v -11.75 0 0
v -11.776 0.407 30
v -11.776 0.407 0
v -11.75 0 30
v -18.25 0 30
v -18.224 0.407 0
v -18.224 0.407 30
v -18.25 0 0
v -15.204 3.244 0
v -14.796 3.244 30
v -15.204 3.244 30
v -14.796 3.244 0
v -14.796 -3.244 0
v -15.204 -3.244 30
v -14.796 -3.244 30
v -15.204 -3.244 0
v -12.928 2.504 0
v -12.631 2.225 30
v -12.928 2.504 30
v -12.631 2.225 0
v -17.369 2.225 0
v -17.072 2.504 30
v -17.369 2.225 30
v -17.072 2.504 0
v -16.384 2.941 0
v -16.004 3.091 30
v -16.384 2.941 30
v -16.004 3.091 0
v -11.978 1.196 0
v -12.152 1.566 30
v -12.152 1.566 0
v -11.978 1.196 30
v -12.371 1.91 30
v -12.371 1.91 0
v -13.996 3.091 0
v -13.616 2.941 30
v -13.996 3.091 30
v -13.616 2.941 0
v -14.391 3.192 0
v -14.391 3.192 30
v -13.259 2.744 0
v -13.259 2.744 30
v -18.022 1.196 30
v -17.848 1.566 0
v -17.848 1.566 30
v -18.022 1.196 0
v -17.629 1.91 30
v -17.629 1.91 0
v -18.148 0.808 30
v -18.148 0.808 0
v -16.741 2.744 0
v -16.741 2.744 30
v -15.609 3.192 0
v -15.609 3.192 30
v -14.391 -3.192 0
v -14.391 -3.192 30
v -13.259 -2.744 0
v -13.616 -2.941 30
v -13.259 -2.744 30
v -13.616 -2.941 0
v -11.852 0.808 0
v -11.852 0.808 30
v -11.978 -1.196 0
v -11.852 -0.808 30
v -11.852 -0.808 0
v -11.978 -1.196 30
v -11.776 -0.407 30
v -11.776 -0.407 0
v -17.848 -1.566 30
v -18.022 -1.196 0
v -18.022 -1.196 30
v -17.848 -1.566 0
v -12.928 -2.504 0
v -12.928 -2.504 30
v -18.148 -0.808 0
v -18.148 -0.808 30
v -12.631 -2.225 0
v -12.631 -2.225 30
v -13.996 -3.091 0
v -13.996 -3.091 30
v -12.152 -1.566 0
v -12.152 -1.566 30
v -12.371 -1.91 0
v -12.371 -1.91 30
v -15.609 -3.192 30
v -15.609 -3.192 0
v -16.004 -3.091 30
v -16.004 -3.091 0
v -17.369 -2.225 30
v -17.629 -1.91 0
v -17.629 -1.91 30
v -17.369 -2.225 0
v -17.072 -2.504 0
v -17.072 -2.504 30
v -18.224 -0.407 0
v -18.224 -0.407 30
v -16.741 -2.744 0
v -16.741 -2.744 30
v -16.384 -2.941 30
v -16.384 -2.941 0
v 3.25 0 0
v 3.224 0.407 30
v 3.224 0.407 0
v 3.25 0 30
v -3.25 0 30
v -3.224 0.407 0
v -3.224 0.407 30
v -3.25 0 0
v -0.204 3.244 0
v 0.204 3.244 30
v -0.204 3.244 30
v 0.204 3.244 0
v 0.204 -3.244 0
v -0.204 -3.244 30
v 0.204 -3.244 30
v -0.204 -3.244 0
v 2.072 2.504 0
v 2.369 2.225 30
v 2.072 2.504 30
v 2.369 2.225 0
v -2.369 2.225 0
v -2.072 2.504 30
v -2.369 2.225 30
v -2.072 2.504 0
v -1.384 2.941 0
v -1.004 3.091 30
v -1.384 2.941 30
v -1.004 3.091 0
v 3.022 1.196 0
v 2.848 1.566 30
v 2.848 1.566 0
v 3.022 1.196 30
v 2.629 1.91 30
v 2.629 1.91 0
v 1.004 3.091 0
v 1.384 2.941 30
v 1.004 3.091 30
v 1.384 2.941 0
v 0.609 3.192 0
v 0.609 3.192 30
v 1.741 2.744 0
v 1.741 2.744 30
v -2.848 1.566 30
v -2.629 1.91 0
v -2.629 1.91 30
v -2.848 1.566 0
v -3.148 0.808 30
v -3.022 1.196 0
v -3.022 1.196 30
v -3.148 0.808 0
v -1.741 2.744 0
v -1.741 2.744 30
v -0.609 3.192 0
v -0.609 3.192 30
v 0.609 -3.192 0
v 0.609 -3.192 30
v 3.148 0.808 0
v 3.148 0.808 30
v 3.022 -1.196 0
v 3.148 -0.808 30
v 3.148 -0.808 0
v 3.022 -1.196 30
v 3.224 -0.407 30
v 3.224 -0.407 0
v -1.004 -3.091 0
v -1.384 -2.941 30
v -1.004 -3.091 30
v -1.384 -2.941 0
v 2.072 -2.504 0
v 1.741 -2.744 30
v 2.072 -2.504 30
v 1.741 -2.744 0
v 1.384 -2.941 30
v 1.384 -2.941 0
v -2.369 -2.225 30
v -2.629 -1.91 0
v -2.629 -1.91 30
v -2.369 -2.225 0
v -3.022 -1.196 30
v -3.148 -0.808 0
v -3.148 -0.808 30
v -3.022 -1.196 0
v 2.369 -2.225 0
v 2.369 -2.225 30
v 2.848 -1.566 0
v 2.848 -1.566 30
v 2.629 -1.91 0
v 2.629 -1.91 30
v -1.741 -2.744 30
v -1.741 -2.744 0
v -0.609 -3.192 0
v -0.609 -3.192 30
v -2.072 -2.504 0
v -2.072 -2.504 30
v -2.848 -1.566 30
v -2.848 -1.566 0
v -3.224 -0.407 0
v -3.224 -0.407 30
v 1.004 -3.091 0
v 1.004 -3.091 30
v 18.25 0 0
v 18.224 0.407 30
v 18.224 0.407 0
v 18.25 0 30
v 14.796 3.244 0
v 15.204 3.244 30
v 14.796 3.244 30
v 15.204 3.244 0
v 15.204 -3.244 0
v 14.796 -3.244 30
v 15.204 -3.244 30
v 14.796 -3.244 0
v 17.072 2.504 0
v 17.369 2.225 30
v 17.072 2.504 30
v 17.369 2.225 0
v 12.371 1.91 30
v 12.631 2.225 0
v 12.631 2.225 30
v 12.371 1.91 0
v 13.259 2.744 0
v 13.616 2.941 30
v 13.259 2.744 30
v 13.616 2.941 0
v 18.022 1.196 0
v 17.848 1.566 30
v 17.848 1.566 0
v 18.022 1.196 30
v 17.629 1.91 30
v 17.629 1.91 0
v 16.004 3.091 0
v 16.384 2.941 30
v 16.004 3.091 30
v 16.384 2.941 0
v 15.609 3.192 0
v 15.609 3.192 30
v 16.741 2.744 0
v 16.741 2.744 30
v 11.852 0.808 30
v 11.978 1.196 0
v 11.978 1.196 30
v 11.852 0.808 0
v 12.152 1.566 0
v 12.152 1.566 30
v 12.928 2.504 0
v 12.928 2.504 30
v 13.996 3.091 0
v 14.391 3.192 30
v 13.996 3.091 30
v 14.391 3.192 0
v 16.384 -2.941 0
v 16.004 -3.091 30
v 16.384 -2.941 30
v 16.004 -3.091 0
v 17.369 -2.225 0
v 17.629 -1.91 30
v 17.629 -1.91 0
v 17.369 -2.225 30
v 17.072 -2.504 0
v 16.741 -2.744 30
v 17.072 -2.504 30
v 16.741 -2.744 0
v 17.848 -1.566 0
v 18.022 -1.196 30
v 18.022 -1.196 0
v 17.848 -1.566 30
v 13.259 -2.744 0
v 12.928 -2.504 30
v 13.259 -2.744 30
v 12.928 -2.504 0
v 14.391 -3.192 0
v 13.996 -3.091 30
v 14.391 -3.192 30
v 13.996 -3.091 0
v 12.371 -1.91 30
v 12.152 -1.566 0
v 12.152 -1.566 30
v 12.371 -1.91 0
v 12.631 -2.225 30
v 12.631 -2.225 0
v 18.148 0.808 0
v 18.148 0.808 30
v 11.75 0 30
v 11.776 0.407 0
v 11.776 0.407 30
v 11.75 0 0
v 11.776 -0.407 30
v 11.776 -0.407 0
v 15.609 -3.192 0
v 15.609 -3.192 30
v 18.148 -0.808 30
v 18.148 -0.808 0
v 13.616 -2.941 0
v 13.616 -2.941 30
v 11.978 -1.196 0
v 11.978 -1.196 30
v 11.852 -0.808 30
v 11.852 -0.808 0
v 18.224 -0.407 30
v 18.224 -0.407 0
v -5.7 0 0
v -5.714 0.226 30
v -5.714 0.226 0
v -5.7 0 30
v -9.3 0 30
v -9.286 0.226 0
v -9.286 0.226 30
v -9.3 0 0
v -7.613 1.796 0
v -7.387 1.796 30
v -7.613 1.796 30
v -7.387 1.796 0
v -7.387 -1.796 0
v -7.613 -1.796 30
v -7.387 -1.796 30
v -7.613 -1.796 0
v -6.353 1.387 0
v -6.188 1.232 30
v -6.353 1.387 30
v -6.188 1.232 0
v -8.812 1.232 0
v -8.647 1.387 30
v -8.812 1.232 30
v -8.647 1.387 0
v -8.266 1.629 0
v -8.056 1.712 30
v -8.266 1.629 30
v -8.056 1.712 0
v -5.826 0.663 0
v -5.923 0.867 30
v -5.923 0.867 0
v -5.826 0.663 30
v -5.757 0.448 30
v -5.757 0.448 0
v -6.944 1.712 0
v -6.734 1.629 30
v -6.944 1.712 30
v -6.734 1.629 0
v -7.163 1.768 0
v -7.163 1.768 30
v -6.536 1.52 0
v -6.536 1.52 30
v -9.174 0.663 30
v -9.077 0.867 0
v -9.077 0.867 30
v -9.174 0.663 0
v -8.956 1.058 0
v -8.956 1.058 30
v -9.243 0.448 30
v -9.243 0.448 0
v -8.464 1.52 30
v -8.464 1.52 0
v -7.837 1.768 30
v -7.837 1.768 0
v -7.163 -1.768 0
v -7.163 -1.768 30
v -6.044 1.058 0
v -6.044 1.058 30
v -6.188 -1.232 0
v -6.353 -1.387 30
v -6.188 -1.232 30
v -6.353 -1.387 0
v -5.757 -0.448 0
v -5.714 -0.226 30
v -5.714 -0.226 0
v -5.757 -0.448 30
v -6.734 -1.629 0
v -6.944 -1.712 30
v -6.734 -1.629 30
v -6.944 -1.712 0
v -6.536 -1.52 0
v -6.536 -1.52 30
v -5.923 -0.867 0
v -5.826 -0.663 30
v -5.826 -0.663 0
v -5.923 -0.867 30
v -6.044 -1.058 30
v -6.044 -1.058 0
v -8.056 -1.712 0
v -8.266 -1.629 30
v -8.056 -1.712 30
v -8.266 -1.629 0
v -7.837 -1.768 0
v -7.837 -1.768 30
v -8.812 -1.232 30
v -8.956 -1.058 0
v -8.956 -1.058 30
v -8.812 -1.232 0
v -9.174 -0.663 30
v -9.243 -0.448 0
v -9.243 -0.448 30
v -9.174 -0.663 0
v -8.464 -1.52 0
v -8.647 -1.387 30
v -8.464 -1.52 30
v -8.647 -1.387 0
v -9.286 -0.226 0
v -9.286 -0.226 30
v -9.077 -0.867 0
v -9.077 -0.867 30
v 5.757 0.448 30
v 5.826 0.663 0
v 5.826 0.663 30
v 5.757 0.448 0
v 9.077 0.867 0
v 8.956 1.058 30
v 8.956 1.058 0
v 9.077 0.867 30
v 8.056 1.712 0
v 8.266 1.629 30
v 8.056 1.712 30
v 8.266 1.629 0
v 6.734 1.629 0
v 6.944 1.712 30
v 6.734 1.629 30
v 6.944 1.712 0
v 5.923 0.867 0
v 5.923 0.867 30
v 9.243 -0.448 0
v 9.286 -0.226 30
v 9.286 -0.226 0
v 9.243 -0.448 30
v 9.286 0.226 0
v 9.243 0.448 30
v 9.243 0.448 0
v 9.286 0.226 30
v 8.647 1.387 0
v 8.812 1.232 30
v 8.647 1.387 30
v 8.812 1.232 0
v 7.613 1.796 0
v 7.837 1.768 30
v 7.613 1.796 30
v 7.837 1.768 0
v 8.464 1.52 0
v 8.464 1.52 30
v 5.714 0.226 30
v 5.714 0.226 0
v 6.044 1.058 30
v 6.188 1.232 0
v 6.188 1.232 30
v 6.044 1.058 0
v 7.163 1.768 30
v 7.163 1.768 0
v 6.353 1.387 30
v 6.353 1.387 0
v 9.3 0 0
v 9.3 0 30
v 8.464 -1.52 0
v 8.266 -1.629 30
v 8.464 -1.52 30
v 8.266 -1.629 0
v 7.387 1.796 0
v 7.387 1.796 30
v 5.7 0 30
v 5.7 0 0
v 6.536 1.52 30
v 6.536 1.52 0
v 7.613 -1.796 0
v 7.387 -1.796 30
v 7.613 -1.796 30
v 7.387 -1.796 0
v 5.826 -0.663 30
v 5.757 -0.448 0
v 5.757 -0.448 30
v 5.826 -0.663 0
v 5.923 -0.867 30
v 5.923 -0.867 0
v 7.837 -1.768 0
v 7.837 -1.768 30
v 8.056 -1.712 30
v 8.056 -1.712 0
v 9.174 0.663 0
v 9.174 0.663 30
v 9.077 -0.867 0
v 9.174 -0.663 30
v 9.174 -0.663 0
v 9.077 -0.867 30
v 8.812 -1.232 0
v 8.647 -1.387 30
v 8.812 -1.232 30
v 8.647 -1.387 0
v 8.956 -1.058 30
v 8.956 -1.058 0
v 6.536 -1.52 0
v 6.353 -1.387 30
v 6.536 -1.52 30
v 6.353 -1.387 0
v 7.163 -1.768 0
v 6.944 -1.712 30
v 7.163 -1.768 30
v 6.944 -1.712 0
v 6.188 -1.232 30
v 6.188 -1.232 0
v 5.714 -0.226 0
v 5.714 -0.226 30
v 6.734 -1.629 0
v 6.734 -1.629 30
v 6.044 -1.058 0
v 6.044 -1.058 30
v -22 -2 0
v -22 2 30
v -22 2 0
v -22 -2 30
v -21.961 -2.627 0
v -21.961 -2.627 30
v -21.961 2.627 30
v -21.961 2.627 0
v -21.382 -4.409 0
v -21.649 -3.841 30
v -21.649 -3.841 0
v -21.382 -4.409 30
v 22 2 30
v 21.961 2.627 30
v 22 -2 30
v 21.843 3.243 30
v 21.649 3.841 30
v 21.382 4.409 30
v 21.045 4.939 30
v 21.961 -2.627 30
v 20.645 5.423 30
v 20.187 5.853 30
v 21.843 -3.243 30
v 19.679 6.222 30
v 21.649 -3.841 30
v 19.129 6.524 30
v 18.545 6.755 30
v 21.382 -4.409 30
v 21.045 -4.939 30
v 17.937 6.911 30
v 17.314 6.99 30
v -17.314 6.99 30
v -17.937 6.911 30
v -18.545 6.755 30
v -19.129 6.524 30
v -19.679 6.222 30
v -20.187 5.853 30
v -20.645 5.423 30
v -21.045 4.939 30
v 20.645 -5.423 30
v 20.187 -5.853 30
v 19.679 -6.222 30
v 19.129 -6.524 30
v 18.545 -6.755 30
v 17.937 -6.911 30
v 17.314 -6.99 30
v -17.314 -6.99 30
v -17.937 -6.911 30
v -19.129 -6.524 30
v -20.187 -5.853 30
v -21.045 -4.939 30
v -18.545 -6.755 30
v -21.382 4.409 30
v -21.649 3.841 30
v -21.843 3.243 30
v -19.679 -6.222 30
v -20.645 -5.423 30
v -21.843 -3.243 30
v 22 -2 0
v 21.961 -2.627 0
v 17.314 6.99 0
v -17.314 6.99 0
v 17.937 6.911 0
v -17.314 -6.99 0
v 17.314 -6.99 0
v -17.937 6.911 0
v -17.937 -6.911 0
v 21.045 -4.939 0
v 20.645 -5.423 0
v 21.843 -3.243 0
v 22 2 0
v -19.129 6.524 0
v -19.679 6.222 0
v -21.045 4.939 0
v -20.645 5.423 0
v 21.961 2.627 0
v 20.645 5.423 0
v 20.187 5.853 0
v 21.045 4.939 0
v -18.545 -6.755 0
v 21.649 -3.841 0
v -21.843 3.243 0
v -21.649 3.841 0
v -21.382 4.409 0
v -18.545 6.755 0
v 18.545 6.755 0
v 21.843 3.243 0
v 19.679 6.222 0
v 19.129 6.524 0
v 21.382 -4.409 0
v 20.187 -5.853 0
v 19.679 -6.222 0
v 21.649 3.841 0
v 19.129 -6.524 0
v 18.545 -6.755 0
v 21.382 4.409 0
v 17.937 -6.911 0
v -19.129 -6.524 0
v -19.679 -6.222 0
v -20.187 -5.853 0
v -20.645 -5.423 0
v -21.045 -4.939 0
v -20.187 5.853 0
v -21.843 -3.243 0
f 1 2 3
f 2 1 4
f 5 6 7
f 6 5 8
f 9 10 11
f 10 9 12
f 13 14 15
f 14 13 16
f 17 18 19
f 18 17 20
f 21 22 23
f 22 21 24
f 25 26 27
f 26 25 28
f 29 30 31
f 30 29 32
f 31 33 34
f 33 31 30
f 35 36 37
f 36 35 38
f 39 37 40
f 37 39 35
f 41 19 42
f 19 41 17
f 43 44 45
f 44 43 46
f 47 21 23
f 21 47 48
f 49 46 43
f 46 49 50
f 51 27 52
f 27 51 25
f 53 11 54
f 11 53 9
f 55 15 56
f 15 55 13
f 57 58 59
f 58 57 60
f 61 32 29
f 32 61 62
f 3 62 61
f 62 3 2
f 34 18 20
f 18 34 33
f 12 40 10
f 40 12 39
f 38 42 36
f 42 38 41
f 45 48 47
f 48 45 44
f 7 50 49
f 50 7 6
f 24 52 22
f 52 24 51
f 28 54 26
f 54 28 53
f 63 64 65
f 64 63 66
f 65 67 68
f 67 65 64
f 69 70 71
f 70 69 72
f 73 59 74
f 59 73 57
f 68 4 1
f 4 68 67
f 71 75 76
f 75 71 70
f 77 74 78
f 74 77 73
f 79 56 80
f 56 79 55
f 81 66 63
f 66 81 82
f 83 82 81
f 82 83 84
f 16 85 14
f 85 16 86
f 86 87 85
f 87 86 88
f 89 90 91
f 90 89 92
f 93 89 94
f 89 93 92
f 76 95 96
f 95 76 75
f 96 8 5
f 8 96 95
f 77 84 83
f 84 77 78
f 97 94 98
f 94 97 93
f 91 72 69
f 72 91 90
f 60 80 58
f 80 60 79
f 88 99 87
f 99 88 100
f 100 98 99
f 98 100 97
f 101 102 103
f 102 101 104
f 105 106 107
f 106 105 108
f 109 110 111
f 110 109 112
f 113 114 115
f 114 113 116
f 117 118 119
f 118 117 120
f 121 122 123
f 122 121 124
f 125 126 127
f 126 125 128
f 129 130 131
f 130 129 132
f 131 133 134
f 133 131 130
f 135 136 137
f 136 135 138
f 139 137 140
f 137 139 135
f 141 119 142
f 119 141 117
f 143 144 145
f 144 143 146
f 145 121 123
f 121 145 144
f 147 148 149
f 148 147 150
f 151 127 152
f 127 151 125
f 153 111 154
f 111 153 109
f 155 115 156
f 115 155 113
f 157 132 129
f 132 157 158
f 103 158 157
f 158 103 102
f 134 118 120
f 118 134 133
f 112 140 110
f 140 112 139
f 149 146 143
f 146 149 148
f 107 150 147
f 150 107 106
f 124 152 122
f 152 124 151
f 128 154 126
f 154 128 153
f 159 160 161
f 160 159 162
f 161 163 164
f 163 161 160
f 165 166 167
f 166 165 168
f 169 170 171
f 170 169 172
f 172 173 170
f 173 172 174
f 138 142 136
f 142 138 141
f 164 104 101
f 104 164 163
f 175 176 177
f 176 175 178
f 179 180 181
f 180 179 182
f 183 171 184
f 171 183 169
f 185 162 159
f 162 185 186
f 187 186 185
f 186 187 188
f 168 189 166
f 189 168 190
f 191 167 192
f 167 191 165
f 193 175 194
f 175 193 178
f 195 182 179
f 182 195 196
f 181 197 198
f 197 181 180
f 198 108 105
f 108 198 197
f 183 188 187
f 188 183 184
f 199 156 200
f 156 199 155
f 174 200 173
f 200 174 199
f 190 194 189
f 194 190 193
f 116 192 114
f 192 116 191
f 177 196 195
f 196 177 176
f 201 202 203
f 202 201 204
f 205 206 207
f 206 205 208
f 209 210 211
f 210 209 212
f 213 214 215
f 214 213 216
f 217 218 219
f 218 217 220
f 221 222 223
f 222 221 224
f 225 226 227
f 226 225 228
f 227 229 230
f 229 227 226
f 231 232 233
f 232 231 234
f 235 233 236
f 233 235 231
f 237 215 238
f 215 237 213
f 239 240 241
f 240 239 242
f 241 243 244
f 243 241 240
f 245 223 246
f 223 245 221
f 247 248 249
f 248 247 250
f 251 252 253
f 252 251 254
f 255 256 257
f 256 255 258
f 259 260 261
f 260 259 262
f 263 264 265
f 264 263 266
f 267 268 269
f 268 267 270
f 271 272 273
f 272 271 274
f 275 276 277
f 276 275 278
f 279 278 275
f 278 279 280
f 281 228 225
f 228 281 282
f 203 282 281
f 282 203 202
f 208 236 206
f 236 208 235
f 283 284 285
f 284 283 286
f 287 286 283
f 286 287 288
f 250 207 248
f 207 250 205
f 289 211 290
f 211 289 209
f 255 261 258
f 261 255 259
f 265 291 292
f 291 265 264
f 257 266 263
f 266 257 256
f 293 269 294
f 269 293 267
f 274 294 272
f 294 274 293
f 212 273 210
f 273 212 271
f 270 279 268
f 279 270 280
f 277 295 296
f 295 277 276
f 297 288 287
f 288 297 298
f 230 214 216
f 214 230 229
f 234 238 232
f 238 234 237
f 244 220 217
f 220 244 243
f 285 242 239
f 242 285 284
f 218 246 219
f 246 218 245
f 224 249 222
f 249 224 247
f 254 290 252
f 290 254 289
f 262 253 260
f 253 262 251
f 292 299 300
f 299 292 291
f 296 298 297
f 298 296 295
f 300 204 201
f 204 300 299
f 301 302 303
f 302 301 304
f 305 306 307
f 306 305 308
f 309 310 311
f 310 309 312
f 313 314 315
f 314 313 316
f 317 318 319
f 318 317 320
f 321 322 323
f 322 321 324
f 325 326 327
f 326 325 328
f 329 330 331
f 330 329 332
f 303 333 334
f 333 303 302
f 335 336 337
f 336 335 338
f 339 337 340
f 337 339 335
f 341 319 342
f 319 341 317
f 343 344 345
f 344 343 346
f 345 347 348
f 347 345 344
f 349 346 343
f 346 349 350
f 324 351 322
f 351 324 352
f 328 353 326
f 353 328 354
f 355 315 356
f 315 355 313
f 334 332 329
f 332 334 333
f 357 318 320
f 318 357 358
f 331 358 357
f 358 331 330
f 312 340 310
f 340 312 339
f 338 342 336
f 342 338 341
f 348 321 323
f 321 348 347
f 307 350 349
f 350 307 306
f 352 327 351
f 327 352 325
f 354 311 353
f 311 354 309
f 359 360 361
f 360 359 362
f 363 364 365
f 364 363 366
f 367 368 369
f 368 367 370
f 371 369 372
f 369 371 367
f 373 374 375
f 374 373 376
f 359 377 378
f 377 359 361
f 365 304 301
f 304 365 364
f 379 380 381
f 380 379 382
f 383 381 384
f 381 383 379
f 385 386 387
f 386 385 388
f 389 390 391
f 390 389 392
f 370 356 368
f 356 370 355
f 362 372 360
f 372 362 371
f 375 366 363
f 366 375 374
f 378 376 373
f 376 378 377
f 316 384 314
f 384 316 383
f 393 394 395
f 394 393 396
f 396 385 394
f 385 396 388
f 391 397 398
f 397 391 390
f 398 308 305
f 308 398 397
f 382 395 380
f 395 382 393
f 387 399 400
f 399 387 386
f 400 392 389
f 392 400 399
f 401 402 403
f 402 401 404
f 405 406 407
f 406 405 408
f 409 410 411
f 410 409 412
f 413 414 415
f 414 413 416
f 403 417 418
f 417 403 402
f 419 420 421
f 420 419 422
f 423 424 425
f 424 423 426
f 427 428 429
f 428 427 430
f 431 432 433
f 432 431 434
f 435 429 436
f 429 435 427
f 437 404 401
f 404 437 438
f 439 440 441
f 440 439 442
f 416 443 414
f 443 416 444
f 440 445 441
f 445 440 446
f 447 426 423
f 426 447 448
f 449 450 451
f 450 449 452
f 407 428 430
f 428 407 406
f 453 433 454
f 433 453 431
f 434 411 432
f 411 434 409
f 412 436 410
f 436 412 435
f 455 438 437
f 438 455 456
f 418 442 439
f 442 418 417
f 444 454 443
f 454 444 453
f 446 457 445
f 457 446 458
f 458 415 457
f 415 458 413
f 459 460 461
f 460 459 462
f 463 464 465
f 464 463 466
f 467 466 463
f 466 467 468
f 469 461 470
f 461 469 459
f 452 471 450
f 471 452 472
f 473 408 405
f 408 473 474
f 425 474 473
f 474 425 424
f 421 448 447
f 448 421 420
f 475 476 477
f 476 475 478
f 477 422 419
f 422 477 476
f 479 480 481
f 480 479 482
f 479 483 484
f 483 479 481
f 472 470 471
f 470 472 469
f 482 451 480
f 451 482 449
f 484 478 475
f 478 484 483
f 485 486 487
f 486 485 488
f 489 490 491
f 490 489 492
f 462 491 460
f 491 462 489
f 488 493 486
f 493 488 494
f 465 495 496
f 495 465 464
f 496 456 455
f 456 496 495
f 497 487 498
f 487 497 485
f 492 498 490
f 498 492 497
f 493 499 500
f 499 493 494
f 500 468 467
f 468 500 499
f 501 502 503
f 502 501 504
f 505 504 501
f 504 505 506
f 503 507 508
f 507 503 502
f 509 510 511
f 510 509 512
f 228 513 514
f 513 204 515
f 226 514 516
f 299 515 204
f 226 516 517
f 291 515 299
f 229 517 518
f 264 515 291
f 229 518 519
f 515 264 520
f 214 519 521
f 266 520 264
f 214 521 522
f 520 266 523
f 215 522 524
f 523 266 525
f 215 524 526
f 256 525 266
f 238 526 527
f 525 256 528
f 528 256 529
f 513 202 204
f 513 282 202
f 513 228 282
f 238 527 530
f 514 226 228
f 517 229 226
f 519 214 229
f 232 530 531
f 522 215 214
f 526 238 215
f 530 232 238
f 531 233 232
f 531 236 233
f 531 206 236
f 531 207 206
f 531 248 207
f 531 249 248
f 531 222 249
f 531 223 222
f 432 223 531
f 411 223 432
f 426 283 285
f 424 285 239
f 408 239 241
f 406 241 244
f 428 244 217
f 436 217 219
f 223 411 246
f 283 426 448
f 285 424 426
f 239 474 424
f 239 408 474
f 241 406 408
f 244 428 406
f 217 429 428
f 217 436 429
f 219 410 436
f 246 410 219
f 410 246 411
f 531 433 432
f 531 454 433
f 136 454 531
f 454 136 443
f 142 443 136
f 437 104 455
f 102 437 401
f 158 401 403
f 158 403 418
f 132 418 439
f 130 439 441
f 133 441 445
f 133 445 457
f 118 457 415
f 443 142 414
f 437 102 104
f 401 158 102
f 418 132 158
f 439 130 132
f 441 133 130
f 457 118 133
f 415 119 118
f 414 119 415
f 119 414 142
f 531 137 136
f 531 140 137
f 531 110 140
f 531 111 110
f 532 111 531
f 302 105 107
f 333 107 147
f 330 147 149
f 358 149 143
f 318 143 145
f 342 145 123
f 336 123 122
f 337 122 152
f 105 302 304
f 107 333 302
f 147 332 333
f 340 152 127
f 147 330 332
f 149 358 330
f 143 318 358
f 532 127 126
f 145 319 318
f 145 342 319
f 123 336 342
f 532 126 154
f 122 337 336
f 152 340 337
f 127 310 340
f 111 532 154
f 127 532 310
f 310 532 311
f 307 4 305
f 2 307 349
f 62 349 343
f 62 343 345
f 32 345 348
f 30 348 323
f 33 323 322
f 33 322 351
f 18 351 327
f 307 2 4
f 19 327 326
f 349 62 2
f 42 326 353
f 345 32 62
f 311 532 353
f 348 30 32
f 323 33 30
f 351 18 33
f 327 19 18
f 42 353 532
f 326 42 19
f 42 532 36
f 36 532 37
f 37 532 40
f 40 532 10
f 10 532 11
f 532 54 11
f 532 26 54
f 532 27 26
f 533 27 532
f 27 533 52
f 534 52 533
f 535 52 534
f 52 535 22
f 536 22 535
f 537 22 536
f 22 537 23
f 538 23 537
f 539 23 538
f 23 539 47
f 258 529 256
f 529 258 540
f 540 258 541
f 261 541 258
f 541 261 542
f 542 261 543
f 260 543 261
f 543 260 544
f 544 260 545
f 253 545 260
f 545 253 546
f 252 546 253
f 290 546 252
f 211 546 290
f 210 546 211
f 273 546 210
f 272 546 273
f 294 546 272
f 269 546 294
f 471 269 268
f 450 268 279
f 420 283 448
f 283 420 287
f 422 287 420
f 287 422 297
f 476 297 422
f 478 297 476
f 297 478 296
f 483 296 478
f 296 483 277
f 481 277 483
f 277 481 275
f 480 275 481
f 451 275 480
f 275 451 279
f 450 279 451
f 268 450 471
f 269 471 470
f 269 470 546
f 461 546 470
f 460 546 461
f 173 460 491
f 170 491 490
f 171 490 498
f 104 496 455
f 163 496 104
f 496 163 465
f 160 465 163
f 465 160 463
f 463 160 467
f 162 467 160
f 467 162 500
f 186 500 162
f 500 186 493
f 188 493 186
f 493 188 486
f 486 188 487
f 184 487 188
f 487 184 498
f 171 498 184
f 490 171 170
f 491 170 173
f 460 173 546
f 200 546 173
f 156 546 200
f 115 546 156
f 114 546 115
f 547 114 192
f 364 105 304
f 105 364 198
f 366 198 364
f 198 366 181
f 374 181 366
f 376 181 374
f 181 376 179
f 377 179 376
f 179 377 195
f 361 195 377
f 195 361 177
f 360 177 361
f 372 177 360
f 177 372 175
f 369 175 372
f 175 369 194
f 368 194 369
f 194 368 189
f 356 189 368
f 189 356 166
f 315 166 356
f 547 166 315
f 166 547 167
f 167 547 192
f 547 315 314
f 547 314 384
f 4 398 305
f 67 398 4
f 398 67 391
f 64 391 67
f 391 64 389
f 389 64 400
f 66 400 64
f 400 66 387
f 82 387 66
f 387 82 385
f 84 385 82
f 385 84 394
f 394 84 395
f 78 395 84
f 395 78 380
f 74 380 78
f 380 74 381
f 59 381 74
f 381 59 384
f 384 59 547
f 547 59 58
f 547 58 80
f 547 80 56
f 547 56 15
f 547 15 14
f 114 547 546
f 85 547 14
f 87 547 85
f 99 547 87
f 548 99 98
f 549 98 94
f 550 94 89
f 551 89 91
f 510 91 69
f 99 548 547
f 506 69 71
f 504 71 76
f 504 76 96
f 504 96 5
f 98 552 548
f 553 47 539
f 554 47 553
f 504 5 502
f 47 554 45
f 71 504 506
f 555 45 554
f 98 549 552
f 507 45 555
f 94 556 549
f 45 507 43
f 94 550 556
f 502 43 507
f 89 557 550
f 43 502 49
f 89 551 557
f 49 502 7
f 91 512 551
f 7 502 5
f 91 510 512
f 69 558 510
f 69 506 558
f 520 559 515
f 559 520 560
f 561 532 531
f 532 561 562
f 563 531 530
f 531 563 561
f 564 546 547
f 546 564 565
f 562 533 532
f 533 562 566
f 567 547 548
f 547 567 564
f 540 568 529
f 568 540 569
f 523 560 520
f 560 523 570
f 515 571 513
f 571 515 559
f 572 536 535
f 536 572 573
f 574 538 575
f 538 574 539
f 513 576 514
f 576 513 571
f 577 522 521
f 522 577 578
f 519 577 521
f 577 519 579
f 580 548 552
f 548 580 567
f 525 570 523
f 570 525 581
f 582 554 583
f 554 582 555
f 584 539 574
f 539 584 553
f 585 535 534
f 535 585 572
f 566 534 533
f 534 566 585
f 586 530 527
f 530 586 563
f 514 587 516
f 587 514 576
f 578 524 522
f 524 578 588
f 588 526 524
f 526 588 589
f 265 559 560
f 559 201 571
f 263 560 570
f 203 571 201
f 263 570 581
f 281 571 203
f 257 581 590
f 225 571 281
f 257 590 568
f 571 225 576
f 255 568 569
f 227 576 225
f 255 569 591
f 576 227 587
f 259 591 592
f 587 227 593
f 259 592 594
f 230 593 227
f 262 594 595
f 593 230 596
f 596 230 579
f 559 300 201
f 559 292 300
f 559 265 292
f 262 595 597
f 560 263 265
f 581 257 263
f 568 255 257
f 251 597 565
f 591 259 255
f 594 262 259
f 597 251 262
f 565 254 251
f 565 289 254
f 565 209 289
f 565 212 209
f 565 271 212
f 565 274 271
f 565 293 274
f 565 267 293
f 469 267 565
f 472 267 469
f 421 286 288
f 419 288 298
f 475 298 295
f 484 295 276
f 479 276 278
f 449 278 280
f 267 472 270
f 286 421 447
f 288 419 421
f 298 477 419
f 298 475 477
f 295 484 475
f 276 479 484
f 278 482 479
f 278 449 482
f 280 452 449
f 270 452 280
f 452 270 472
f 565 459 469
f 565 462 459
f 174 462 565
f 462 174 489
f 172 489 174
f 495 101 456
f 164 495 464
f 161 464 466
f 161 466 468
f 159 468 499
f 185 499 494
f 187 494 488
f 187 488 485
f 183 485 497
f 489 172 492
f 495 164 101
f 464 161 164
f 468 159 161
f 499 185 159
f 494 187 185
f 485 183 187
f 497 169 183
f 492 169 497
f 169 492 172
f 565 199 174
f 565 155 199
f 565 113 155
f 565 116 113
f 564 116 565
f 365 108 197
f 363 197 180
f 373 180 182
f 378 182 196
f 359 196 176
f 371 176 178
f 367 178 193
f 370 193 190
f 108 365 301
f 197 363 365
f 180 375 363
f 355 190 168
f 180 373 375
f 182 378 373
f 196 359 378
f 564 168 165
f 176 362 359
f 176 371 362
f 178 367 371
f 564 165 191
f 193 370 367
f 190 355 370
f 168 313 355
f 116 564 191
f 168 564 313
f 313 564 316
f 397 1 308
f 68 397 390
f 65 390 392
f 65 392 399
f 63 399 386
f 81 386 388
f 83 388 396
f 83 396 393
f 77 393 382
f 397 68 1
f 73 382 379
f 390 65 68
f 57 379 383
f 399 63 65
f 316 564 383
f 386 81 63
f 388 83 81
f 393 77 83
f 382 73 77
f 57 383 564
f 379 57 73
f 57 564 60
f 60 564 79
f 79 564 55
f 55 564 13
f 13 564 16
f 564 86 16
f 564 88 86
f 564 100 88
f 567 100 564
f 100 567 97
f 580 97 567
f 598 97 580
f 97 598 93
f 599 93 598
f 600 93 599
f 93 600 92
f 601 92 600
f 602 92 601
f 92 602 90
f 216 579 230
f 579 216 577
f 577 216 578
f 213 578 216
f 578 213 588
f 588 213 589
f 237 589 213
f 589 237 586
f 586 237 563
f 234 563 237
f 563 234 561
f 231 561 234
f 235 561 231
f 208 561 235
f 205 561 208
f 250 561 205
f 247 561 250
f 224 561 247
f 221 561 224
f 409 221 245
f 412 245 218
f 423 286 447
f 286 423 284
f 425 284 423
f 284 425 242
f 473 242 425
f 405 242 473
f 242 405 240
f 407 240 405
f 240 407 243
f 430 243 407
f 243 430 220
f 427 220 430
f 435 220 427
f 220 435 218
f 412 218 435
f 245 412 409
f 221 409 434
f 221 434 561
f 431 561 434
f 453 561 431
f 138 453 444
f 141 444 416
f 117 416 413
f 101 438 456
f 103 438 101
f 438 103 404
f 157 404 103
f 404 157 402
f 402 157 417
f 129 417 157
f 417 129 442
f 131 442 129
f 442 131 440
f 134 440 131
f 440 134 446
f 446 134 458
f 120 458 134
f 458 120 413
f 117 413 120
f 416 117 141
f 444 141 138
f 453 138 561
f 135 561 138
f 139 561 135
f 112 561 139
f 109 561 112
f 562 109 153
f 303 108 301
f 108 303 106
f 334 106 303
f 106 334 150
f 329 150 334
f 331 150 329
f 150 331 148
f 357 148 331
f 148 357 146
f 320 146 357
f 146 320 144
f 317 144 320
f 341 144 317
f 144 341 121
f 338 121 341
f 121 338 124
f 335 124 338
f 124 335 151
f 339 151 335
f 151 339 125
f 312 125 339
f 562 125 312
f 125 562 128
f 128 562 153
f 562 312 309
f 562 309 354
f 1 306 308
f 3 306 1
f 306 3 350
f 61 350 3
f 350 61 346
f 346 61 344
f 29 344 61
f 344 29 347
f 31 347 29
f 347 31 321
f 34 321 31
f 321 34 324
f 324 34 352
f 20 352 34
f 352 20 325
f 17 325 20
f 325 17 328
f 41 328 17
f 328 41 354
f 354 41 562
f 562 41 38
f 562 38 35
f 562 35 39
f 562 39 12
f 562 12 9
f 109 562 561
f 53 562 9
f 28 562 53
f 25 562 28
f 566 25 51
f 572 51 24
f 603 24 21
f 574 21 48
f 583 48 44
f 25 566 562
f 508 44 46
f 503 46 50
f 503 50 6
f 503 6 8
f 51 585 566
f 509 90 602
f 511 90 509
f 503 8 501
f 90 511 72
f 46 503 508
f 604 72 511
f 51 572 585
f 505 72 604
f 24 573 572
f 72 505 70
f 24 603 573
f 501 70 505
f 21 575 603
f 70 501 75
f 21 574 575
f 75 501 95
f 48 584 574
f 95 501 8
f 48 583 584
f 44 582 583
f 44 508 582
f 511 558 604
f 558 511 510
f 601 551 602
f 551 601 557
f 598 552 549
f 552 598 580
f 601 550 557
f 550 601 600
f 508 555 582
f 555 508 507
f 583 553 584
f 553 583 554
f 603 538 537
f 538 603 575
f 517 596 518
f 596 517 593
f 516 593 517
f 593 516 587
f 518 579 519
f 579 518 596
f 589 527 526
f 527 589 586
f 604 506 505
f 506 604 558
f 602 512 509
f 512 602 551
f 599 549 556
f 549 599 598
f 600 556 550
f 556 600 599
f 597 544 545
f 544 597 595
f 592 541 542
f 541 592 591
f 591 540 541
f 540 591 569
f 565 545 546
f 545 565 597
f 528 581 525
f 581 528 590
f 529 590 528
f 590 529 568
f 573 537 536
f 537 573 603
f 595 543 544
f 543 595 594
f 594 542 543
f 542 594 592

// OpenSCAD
$fn = 50;


difference() {
	union() {
		translate(v = [0, 0, 0]) {
			rotate(a = [0, 0, 0]) {
				hull() {
					translate(v = [-17.0000000000, 2.0000000000, 0]) {
						rotate(a = [0, 0, 0]) {
							translate(v = [0, 0, 0]) {
								rotate(a = [0, 0, 0]) {
									cylinder(h = 30, r = 5);
								}
							}
						}
					}
					translate(v = [17.0000000000, 2.0000000000, 0]) {
						rotate(a = [0, 0, 0]) {
							translate(v = [0, 0, 0]) {
								rotate(a = [0, 0, 0]) {
									cylinder(h = 30, r = 5);
								}
							}
						}
					}
					translate(v = [-17.0000000000, -2.0000000000, 0]) {
						rotate(a = [0, 0, 0]) {
							translate(v = [0, 0, 0]) {
								rotate(a = [0, 0, 0]) {
									cylinder(h = 30, r = 5);
								}
							}
						}
					}
					translate(v = [17.0000000000, -2.0000000000, 0]) {
						rotate(a = [0, 0, 0]) {
							translate(v = [0, 0, 0]) {
								rotate(a = [0, 0, 0]) {
									cylinder(h = 30, r = 5);
								}
							}
						}
					}
				}
			}
		}
	}
	union() {
		translate(v = [-15.0000000000, 0.0000000000, 0]) {
			rotate(a = [0, 0, 0]) {
				translate(v = [0, 0, -50]) {
					rotate(a = [0, 0, 0]) {
						cylinder(h = 100, r = 3.2500000000);
					}
				}
			}
		}
		translate(v = [0.0000000000, 0.0000000000, 0]) {
			rotate(a = [0, 0, 0]) {
				translate(v = [0, 0, -50]) {
					rotate(a = [0, 0, 0]) {
						cylinder(h = 100, r = 3.2500000000);
					}
				}
			}
		}
		translate(v = [15.0000000000, 0.0000000000, 0]) {
			rotate(a = [0, 0, 0]) {
				translate(v = [0, 0, -50]) {
					rotate(a = [0, 0, 0]) {
						cylinder(h = 100, r = 3.2500000000);
					}
				}
			}
		}
		translate(v = [-15.0000000000, 0.0000000000, 0]) {
			rotate(a = [0, 0, 0]) {
				translate(v = [0, 0, -50]) {
					rotate(a = [0, 0, 0]) {
						cylinder(h = 100, r = 1.8000000000);
					}
				}
			}
		}
		translate(v = [-7.5000000000, 0.0000000000, 0]) {
			rotate(a = [0, 0, 0]) {
				translate(v = [0, 0, -50]) {
					rotate(a = [0, 0, 0]) {
						cylinder(h = 100, r = 1.8000000000);
					}
				}
			}
		}
		translate(v = [0.0000000000, 0.0000000000, 0]) {
			rotate(a = [0, 0, 0]) {
				translate(v = [0, 0, -50]) {
					rotate(a = [0, 0, 0]) {
						cylinder(h = 100, r = 1.8000000000);
					}
				}
			}
		}
		translate(v = [7.5000000000, 0.0000000000, 0]) {
			rotate(a = [0, 0, 0]) {
				translate(v = [0, 0, -50]) {
					rotate(a = [0, 0, 0]) {
						cylinder(h = 100, r = 1.8000000000);
					}
				}
			}
		}
		translate(v = [15.0000000000, 0.0000000000, 0]) {
			rotate(a = [0, 0, 0]) {
				translate(v = [0, 0, -50]) {
					rotate(a = [0, 0, 0]) {
						cylinder(h = 100, r = 1.8000000000);
					}
				}
			}
		}
	}
}
